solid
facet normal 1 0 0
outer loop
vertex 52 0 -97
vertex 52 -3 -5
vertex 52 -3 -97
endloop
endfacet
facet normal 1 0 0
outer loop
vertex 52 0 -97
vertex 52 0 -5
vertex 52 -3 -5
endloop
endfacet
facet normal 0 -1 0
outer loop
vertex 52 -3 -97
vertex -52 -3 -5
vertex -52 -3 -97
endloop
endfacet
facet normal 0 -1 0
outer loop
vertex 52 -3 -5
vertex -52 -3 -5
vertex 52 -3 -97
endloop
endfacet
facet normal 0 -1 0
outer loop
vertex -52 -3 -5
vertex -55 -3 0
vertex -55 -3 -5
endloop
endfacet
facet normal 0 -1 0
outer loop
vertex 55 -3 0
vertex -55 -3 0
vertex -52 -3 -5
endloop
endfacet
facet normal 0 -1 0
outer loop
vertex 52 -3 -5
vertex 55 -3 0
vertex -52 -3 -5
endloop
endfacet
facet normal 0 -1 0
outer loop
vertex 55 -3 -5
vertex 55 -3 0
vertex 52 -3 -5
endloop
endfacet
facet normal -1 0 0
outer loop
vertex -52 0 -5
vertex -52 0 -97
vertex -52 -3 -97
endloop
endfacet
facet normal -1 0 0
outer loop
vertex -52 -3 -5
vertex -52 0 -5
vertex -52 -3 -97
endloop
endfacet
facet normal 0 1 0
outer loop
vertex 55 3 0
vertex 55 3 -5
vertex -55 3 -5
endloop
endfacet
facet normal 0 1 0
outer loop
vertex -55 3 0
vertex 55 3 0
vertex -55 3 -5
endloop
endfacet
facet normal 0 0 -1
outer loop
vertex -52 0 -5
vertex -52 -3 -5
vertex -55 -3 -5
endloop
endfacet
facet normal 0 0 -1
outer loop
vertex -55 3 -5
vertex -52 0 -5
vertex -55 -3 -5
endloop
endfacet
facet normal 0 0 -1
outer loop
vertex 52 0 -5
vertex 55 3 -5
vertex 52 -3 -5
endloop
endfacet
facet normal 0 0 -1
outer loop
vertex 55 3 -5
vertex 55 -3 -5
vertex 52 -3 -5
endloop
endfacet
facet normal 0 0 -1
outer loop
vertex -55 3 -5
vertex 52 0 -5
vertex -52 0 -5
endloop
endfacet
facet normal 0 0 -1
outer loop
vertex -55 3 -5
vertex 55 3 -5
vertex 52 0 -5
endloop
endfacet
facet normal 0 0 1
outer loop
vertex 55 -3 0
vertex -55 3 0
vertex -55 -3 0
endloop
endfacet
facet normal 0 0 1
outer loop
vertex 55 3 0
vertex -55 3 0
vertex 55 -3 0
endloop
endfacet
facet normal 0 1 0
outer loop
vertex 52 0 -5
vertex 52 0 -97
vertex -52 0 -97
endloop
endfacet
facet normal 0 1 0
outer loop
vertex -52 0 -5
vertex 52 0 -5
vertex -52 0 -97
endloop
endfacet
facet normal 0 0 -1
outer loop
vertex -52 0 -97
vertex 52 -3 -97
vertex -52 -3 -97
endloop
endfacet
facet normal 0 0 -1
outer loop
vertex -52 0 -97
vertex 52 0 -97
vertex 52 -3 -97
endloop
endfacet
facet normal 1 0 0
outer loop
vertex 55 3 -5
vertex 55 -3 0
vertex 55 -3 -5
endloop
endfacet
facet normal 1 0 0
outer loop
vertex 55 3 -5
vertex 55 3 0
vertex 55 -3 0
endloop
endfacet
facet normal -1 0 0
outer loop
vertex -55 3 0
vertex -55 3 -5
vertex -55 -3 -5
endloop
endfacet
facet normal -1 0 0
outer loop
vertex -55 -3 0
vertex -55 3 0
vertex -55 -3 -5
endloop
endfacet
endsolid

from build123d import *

# Parameters (mm, degrees)
SKETCH1_W           = 104
SKETCH1_H           = 6
BOSS_EXTRUDE1_DEPTH = 5
SKETCH2_W           = 104
SKETCH2_H           = 3
BOSS_EXTRUDE2_DEPTH = 92
SKETCH3_W           = 5
SKETCH3_H           = 6
BOSS_EXTRUDE3_DEPTH = 3
SKETCH4_W           = 5
SKETCH4_H           = 6
BOSS_EXTRUDE4_DEPTH = 3


with BuildPart() as part:
    # Sketch1 → Boss-Extrude1 (new body)
    with BuildSketch(Plane.XY):
        Rectangle(SKETCH1_W, SKETCH1_H)
    extrude(amount=-BOSS_EXTRUDE1_DEPTH)

    # Sketch2 → Boss-Extrude2 (add)
    with BuildSketch(Plane(origin=(0, 0, -5), x_dir=(-1, 0, 0), z_dir=(0, 0, -1))):
        with Locations((0, -1.5)):
            Rectangle(SKETCH2_W, SKETCH2_H)
    extrude(amount=BOSS_EXTRUDE2_DEPTH)

    # Sketch3 → Boss-Extrude3 (add)
    with BuildSketch(Plane(origin=(52, 0, 0), x_dir=(0, 0, -1), z_dir=(1, 0, 0))):
        with Locations((2.5, 0)):
            Rectangle(SKETCH3_W, SKETCH3_H)
    extrude(amount=BOSS_EXTRUDE3_DEPTH)

    # Sketch4 → Boss-Extrude4 (add)
    with BuildSketch(Plane.ZY.offset(52)):
        with Locations((-2.5, 0)):
            Rectangle(SKETCH4_W, SKETCH4_H)
    extrude(amount=BOSS_EXTRUDE4_DEPTH)


solid = part.part
